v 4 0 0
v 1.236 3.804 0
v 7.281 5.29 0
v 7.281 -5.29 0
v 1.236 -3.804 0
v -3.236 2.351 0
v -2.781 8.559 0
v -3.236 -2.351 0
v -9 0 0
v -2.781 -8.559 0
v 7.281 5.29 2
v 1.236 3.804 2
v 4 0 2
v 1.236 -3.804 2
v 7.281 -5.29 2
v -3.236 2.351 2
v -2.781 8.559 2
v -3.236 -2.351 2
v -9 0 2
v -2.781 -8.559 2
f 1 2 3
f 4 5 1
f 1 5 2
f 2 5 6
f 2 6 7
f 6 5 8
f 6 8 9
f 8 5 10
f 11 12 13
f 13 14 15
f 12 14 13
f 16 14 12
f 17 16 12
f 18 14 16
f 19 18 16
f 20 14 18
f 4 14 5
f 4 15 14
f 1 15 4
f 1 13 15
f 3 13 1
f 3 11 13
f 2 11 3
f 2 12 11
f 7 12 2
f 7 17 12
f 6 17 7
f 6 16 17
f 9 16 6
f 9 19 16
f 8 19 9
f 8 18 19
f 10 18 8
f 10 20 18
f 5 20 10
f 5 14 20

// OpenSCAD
// file: CommonModules.scad
//    $$$$$$\   $$$$$$\   $$$$$$\  $$\   $$\ $$$$$$\ $$$$$$$\  $$$$$$$$\ 
//    $$  __$$\ $$  __$$\ $$  __$$\ $$ |  $$ |\_$$  _|$$  __$$\ $$  _____|
//    $$ /  $$ |$$ /  \__|$$ /  $$ |$$ |  $$ |  $$ |  $$ |  $$ |$$ |      
//    $$$$$$$$ |$$ |      $$ |  $$ |$$ |  $$ |  $$ |  $$$$$$$  |$$$$$\    
//    $$  __$$ |$$ |      $$ |  $$ |$$ |  $$ |  $$ |  $$  __$$< $$  __|   
//    $$ |  $$ |$$ |  $$\ $$ $$\$$ |$$ |  $$ |  $$ |  $$ |  $$ |$$ |      
//    $$ |  $$ |\$$$$$$  |\$$$$$$ / \$$$$$$  |$$$$$$\ $$ |  $$ |$$$$$$$$\ 
//    \__|  \__| \______/  \___$$$\  \______/ \______|\__|  \__|\________|
//                            \___|                                      
//      
//       Print and play - OpenScad project - by Bekkalizer - GPLv3
// 
// This file is part of the Acquire stl project.
// Copyright (C) 2025 Bekkalizer
//
// Acquire stl project is free software: you can redistribute it and/or modify
// it under the terms of the GNU General Public License as published
// by the Free Software Foundation, either version 3 of the License,
// or (at your option) any later version.
//
// Acquire stl project is distributed in the hope that it will be useful,
// but WITHOUT ANY WARRANTY; without even the implied warranty of
// MERCHANTABILITY or FITNESS FOR A PARTICULAR PURPOSE. See the
// GNU General Public License for more details.
//
// You should have received a copy of the GNU General Public License
// along with this program. If not, see <https://www.gnu.org/licenses/>.

module cube_with_extruded_bottom( cube_size = [19.5, 19.5, 5] ) {
    //Main build script parameters:
    max_width = 19.2;
    top_lip = 2;
    top_height = 3;
    //Calculated hole size:
    inside_margins = 1;
    hole_width = max_width - 2 * (top_lip) + inside_margins;
    hole_height = top_height + inside_margins;
    
    hole_size = [hole_width, hole_width, hole_height]; // Hole dimensions (same height as cube)
    hole_offset = [(cube_size[0] - hole_size[0]) / 2, (cube_size[1] - hole_size[1]) / 2, -0.1]; // Centered on bottom
    difference() {
        // Main Cube
        cube(cube_size);
        
        // Hole Cube (subtracting from bottom)
        translate(hole_offset)
            cube(hole_size);
    }
}
// main file
//    $$$$$$\   $$$$$$\   $$$$$$\  $$\   $$\ $$$$$$\ $$$$$$$\  $$$$$$$$\
//    $$  __$$\ $$  __$$\ $$  __$$\ $$ |  $$ |\_$$  _|$$  __$$\ $$  _____|
//    $$ /  $$ |$$ /  \__|$$ /  $$ |$$ |  $$ |  $$ |  $$ |  $$ |$$ |
//    $$$$$$$$ |$$ |      $$ |  $$ |$$ |  $$ |  $$ |  $$$$$$$  |$$$$$\
//    $$  __$$ |$$ |      $$ |  $$ |$$ |  $$ |  $$ |  $$  __$$< $$  __|
//    $$ |  $$ |$$ |  $$\ $$ $$\$$ |$$ |  $$ |  $$ |  $$ |  $$ |$$ |
//    $$ |  $$ |\$$$$$$  |\$$$$$$ / \$$$$$$  |$$$$$$\ $$ |  $$ |$$$$$$$$\
//    \__|  \__| \______/  \___$$$\  \______/ \______|\__|  \__|\________|
//                            \___|
//
//       Print and play - OpenScad project - by Bekkalizer and Claude
//
// This file is part of the Acquire stl project.
// Copyright (C) 2025 Bekkalizer
//
// Acquire stl project is free software: you can redistribute it and/or modify
// it under the terms of the GNU General Public License as published
// by the Free Software Foundation, either version 3 of the License,
// or (at your option) any later version.
//
// Acquire stl project is distributed in the hope that it will be useful,
// but WITHOUT ANY WARRANTY; without even the implied warranty of
// MERCHANTABILITY or FITNESS FOR A PARTICULAR PURPOSE. See the
// GNU General Public License for more details.
//
// You should have received a copy of the GNU General Public License
// along with this program. If not, see <https://www.gnu.org/licenses/>.

use <CommonModules.scad>

// ============== Parameters ==============
star_height = 2;
star_radius = 9;
star_inner_radius = 4;

module star(p=5, r1=4, r2=10) {
  s = [for(i=[0:p*2-1])
    [
      (i % 2 == 0 ? r1 : r2)*cos(180*i/p),
      (i % 2 == 0 ? r1 : r2)*sin(180*i/p)
    ]
  ];
  polygon(s);
}

linear_extrude(star_height)
    star(p=5, r1=star_inner_radius, r2=star_radius);
